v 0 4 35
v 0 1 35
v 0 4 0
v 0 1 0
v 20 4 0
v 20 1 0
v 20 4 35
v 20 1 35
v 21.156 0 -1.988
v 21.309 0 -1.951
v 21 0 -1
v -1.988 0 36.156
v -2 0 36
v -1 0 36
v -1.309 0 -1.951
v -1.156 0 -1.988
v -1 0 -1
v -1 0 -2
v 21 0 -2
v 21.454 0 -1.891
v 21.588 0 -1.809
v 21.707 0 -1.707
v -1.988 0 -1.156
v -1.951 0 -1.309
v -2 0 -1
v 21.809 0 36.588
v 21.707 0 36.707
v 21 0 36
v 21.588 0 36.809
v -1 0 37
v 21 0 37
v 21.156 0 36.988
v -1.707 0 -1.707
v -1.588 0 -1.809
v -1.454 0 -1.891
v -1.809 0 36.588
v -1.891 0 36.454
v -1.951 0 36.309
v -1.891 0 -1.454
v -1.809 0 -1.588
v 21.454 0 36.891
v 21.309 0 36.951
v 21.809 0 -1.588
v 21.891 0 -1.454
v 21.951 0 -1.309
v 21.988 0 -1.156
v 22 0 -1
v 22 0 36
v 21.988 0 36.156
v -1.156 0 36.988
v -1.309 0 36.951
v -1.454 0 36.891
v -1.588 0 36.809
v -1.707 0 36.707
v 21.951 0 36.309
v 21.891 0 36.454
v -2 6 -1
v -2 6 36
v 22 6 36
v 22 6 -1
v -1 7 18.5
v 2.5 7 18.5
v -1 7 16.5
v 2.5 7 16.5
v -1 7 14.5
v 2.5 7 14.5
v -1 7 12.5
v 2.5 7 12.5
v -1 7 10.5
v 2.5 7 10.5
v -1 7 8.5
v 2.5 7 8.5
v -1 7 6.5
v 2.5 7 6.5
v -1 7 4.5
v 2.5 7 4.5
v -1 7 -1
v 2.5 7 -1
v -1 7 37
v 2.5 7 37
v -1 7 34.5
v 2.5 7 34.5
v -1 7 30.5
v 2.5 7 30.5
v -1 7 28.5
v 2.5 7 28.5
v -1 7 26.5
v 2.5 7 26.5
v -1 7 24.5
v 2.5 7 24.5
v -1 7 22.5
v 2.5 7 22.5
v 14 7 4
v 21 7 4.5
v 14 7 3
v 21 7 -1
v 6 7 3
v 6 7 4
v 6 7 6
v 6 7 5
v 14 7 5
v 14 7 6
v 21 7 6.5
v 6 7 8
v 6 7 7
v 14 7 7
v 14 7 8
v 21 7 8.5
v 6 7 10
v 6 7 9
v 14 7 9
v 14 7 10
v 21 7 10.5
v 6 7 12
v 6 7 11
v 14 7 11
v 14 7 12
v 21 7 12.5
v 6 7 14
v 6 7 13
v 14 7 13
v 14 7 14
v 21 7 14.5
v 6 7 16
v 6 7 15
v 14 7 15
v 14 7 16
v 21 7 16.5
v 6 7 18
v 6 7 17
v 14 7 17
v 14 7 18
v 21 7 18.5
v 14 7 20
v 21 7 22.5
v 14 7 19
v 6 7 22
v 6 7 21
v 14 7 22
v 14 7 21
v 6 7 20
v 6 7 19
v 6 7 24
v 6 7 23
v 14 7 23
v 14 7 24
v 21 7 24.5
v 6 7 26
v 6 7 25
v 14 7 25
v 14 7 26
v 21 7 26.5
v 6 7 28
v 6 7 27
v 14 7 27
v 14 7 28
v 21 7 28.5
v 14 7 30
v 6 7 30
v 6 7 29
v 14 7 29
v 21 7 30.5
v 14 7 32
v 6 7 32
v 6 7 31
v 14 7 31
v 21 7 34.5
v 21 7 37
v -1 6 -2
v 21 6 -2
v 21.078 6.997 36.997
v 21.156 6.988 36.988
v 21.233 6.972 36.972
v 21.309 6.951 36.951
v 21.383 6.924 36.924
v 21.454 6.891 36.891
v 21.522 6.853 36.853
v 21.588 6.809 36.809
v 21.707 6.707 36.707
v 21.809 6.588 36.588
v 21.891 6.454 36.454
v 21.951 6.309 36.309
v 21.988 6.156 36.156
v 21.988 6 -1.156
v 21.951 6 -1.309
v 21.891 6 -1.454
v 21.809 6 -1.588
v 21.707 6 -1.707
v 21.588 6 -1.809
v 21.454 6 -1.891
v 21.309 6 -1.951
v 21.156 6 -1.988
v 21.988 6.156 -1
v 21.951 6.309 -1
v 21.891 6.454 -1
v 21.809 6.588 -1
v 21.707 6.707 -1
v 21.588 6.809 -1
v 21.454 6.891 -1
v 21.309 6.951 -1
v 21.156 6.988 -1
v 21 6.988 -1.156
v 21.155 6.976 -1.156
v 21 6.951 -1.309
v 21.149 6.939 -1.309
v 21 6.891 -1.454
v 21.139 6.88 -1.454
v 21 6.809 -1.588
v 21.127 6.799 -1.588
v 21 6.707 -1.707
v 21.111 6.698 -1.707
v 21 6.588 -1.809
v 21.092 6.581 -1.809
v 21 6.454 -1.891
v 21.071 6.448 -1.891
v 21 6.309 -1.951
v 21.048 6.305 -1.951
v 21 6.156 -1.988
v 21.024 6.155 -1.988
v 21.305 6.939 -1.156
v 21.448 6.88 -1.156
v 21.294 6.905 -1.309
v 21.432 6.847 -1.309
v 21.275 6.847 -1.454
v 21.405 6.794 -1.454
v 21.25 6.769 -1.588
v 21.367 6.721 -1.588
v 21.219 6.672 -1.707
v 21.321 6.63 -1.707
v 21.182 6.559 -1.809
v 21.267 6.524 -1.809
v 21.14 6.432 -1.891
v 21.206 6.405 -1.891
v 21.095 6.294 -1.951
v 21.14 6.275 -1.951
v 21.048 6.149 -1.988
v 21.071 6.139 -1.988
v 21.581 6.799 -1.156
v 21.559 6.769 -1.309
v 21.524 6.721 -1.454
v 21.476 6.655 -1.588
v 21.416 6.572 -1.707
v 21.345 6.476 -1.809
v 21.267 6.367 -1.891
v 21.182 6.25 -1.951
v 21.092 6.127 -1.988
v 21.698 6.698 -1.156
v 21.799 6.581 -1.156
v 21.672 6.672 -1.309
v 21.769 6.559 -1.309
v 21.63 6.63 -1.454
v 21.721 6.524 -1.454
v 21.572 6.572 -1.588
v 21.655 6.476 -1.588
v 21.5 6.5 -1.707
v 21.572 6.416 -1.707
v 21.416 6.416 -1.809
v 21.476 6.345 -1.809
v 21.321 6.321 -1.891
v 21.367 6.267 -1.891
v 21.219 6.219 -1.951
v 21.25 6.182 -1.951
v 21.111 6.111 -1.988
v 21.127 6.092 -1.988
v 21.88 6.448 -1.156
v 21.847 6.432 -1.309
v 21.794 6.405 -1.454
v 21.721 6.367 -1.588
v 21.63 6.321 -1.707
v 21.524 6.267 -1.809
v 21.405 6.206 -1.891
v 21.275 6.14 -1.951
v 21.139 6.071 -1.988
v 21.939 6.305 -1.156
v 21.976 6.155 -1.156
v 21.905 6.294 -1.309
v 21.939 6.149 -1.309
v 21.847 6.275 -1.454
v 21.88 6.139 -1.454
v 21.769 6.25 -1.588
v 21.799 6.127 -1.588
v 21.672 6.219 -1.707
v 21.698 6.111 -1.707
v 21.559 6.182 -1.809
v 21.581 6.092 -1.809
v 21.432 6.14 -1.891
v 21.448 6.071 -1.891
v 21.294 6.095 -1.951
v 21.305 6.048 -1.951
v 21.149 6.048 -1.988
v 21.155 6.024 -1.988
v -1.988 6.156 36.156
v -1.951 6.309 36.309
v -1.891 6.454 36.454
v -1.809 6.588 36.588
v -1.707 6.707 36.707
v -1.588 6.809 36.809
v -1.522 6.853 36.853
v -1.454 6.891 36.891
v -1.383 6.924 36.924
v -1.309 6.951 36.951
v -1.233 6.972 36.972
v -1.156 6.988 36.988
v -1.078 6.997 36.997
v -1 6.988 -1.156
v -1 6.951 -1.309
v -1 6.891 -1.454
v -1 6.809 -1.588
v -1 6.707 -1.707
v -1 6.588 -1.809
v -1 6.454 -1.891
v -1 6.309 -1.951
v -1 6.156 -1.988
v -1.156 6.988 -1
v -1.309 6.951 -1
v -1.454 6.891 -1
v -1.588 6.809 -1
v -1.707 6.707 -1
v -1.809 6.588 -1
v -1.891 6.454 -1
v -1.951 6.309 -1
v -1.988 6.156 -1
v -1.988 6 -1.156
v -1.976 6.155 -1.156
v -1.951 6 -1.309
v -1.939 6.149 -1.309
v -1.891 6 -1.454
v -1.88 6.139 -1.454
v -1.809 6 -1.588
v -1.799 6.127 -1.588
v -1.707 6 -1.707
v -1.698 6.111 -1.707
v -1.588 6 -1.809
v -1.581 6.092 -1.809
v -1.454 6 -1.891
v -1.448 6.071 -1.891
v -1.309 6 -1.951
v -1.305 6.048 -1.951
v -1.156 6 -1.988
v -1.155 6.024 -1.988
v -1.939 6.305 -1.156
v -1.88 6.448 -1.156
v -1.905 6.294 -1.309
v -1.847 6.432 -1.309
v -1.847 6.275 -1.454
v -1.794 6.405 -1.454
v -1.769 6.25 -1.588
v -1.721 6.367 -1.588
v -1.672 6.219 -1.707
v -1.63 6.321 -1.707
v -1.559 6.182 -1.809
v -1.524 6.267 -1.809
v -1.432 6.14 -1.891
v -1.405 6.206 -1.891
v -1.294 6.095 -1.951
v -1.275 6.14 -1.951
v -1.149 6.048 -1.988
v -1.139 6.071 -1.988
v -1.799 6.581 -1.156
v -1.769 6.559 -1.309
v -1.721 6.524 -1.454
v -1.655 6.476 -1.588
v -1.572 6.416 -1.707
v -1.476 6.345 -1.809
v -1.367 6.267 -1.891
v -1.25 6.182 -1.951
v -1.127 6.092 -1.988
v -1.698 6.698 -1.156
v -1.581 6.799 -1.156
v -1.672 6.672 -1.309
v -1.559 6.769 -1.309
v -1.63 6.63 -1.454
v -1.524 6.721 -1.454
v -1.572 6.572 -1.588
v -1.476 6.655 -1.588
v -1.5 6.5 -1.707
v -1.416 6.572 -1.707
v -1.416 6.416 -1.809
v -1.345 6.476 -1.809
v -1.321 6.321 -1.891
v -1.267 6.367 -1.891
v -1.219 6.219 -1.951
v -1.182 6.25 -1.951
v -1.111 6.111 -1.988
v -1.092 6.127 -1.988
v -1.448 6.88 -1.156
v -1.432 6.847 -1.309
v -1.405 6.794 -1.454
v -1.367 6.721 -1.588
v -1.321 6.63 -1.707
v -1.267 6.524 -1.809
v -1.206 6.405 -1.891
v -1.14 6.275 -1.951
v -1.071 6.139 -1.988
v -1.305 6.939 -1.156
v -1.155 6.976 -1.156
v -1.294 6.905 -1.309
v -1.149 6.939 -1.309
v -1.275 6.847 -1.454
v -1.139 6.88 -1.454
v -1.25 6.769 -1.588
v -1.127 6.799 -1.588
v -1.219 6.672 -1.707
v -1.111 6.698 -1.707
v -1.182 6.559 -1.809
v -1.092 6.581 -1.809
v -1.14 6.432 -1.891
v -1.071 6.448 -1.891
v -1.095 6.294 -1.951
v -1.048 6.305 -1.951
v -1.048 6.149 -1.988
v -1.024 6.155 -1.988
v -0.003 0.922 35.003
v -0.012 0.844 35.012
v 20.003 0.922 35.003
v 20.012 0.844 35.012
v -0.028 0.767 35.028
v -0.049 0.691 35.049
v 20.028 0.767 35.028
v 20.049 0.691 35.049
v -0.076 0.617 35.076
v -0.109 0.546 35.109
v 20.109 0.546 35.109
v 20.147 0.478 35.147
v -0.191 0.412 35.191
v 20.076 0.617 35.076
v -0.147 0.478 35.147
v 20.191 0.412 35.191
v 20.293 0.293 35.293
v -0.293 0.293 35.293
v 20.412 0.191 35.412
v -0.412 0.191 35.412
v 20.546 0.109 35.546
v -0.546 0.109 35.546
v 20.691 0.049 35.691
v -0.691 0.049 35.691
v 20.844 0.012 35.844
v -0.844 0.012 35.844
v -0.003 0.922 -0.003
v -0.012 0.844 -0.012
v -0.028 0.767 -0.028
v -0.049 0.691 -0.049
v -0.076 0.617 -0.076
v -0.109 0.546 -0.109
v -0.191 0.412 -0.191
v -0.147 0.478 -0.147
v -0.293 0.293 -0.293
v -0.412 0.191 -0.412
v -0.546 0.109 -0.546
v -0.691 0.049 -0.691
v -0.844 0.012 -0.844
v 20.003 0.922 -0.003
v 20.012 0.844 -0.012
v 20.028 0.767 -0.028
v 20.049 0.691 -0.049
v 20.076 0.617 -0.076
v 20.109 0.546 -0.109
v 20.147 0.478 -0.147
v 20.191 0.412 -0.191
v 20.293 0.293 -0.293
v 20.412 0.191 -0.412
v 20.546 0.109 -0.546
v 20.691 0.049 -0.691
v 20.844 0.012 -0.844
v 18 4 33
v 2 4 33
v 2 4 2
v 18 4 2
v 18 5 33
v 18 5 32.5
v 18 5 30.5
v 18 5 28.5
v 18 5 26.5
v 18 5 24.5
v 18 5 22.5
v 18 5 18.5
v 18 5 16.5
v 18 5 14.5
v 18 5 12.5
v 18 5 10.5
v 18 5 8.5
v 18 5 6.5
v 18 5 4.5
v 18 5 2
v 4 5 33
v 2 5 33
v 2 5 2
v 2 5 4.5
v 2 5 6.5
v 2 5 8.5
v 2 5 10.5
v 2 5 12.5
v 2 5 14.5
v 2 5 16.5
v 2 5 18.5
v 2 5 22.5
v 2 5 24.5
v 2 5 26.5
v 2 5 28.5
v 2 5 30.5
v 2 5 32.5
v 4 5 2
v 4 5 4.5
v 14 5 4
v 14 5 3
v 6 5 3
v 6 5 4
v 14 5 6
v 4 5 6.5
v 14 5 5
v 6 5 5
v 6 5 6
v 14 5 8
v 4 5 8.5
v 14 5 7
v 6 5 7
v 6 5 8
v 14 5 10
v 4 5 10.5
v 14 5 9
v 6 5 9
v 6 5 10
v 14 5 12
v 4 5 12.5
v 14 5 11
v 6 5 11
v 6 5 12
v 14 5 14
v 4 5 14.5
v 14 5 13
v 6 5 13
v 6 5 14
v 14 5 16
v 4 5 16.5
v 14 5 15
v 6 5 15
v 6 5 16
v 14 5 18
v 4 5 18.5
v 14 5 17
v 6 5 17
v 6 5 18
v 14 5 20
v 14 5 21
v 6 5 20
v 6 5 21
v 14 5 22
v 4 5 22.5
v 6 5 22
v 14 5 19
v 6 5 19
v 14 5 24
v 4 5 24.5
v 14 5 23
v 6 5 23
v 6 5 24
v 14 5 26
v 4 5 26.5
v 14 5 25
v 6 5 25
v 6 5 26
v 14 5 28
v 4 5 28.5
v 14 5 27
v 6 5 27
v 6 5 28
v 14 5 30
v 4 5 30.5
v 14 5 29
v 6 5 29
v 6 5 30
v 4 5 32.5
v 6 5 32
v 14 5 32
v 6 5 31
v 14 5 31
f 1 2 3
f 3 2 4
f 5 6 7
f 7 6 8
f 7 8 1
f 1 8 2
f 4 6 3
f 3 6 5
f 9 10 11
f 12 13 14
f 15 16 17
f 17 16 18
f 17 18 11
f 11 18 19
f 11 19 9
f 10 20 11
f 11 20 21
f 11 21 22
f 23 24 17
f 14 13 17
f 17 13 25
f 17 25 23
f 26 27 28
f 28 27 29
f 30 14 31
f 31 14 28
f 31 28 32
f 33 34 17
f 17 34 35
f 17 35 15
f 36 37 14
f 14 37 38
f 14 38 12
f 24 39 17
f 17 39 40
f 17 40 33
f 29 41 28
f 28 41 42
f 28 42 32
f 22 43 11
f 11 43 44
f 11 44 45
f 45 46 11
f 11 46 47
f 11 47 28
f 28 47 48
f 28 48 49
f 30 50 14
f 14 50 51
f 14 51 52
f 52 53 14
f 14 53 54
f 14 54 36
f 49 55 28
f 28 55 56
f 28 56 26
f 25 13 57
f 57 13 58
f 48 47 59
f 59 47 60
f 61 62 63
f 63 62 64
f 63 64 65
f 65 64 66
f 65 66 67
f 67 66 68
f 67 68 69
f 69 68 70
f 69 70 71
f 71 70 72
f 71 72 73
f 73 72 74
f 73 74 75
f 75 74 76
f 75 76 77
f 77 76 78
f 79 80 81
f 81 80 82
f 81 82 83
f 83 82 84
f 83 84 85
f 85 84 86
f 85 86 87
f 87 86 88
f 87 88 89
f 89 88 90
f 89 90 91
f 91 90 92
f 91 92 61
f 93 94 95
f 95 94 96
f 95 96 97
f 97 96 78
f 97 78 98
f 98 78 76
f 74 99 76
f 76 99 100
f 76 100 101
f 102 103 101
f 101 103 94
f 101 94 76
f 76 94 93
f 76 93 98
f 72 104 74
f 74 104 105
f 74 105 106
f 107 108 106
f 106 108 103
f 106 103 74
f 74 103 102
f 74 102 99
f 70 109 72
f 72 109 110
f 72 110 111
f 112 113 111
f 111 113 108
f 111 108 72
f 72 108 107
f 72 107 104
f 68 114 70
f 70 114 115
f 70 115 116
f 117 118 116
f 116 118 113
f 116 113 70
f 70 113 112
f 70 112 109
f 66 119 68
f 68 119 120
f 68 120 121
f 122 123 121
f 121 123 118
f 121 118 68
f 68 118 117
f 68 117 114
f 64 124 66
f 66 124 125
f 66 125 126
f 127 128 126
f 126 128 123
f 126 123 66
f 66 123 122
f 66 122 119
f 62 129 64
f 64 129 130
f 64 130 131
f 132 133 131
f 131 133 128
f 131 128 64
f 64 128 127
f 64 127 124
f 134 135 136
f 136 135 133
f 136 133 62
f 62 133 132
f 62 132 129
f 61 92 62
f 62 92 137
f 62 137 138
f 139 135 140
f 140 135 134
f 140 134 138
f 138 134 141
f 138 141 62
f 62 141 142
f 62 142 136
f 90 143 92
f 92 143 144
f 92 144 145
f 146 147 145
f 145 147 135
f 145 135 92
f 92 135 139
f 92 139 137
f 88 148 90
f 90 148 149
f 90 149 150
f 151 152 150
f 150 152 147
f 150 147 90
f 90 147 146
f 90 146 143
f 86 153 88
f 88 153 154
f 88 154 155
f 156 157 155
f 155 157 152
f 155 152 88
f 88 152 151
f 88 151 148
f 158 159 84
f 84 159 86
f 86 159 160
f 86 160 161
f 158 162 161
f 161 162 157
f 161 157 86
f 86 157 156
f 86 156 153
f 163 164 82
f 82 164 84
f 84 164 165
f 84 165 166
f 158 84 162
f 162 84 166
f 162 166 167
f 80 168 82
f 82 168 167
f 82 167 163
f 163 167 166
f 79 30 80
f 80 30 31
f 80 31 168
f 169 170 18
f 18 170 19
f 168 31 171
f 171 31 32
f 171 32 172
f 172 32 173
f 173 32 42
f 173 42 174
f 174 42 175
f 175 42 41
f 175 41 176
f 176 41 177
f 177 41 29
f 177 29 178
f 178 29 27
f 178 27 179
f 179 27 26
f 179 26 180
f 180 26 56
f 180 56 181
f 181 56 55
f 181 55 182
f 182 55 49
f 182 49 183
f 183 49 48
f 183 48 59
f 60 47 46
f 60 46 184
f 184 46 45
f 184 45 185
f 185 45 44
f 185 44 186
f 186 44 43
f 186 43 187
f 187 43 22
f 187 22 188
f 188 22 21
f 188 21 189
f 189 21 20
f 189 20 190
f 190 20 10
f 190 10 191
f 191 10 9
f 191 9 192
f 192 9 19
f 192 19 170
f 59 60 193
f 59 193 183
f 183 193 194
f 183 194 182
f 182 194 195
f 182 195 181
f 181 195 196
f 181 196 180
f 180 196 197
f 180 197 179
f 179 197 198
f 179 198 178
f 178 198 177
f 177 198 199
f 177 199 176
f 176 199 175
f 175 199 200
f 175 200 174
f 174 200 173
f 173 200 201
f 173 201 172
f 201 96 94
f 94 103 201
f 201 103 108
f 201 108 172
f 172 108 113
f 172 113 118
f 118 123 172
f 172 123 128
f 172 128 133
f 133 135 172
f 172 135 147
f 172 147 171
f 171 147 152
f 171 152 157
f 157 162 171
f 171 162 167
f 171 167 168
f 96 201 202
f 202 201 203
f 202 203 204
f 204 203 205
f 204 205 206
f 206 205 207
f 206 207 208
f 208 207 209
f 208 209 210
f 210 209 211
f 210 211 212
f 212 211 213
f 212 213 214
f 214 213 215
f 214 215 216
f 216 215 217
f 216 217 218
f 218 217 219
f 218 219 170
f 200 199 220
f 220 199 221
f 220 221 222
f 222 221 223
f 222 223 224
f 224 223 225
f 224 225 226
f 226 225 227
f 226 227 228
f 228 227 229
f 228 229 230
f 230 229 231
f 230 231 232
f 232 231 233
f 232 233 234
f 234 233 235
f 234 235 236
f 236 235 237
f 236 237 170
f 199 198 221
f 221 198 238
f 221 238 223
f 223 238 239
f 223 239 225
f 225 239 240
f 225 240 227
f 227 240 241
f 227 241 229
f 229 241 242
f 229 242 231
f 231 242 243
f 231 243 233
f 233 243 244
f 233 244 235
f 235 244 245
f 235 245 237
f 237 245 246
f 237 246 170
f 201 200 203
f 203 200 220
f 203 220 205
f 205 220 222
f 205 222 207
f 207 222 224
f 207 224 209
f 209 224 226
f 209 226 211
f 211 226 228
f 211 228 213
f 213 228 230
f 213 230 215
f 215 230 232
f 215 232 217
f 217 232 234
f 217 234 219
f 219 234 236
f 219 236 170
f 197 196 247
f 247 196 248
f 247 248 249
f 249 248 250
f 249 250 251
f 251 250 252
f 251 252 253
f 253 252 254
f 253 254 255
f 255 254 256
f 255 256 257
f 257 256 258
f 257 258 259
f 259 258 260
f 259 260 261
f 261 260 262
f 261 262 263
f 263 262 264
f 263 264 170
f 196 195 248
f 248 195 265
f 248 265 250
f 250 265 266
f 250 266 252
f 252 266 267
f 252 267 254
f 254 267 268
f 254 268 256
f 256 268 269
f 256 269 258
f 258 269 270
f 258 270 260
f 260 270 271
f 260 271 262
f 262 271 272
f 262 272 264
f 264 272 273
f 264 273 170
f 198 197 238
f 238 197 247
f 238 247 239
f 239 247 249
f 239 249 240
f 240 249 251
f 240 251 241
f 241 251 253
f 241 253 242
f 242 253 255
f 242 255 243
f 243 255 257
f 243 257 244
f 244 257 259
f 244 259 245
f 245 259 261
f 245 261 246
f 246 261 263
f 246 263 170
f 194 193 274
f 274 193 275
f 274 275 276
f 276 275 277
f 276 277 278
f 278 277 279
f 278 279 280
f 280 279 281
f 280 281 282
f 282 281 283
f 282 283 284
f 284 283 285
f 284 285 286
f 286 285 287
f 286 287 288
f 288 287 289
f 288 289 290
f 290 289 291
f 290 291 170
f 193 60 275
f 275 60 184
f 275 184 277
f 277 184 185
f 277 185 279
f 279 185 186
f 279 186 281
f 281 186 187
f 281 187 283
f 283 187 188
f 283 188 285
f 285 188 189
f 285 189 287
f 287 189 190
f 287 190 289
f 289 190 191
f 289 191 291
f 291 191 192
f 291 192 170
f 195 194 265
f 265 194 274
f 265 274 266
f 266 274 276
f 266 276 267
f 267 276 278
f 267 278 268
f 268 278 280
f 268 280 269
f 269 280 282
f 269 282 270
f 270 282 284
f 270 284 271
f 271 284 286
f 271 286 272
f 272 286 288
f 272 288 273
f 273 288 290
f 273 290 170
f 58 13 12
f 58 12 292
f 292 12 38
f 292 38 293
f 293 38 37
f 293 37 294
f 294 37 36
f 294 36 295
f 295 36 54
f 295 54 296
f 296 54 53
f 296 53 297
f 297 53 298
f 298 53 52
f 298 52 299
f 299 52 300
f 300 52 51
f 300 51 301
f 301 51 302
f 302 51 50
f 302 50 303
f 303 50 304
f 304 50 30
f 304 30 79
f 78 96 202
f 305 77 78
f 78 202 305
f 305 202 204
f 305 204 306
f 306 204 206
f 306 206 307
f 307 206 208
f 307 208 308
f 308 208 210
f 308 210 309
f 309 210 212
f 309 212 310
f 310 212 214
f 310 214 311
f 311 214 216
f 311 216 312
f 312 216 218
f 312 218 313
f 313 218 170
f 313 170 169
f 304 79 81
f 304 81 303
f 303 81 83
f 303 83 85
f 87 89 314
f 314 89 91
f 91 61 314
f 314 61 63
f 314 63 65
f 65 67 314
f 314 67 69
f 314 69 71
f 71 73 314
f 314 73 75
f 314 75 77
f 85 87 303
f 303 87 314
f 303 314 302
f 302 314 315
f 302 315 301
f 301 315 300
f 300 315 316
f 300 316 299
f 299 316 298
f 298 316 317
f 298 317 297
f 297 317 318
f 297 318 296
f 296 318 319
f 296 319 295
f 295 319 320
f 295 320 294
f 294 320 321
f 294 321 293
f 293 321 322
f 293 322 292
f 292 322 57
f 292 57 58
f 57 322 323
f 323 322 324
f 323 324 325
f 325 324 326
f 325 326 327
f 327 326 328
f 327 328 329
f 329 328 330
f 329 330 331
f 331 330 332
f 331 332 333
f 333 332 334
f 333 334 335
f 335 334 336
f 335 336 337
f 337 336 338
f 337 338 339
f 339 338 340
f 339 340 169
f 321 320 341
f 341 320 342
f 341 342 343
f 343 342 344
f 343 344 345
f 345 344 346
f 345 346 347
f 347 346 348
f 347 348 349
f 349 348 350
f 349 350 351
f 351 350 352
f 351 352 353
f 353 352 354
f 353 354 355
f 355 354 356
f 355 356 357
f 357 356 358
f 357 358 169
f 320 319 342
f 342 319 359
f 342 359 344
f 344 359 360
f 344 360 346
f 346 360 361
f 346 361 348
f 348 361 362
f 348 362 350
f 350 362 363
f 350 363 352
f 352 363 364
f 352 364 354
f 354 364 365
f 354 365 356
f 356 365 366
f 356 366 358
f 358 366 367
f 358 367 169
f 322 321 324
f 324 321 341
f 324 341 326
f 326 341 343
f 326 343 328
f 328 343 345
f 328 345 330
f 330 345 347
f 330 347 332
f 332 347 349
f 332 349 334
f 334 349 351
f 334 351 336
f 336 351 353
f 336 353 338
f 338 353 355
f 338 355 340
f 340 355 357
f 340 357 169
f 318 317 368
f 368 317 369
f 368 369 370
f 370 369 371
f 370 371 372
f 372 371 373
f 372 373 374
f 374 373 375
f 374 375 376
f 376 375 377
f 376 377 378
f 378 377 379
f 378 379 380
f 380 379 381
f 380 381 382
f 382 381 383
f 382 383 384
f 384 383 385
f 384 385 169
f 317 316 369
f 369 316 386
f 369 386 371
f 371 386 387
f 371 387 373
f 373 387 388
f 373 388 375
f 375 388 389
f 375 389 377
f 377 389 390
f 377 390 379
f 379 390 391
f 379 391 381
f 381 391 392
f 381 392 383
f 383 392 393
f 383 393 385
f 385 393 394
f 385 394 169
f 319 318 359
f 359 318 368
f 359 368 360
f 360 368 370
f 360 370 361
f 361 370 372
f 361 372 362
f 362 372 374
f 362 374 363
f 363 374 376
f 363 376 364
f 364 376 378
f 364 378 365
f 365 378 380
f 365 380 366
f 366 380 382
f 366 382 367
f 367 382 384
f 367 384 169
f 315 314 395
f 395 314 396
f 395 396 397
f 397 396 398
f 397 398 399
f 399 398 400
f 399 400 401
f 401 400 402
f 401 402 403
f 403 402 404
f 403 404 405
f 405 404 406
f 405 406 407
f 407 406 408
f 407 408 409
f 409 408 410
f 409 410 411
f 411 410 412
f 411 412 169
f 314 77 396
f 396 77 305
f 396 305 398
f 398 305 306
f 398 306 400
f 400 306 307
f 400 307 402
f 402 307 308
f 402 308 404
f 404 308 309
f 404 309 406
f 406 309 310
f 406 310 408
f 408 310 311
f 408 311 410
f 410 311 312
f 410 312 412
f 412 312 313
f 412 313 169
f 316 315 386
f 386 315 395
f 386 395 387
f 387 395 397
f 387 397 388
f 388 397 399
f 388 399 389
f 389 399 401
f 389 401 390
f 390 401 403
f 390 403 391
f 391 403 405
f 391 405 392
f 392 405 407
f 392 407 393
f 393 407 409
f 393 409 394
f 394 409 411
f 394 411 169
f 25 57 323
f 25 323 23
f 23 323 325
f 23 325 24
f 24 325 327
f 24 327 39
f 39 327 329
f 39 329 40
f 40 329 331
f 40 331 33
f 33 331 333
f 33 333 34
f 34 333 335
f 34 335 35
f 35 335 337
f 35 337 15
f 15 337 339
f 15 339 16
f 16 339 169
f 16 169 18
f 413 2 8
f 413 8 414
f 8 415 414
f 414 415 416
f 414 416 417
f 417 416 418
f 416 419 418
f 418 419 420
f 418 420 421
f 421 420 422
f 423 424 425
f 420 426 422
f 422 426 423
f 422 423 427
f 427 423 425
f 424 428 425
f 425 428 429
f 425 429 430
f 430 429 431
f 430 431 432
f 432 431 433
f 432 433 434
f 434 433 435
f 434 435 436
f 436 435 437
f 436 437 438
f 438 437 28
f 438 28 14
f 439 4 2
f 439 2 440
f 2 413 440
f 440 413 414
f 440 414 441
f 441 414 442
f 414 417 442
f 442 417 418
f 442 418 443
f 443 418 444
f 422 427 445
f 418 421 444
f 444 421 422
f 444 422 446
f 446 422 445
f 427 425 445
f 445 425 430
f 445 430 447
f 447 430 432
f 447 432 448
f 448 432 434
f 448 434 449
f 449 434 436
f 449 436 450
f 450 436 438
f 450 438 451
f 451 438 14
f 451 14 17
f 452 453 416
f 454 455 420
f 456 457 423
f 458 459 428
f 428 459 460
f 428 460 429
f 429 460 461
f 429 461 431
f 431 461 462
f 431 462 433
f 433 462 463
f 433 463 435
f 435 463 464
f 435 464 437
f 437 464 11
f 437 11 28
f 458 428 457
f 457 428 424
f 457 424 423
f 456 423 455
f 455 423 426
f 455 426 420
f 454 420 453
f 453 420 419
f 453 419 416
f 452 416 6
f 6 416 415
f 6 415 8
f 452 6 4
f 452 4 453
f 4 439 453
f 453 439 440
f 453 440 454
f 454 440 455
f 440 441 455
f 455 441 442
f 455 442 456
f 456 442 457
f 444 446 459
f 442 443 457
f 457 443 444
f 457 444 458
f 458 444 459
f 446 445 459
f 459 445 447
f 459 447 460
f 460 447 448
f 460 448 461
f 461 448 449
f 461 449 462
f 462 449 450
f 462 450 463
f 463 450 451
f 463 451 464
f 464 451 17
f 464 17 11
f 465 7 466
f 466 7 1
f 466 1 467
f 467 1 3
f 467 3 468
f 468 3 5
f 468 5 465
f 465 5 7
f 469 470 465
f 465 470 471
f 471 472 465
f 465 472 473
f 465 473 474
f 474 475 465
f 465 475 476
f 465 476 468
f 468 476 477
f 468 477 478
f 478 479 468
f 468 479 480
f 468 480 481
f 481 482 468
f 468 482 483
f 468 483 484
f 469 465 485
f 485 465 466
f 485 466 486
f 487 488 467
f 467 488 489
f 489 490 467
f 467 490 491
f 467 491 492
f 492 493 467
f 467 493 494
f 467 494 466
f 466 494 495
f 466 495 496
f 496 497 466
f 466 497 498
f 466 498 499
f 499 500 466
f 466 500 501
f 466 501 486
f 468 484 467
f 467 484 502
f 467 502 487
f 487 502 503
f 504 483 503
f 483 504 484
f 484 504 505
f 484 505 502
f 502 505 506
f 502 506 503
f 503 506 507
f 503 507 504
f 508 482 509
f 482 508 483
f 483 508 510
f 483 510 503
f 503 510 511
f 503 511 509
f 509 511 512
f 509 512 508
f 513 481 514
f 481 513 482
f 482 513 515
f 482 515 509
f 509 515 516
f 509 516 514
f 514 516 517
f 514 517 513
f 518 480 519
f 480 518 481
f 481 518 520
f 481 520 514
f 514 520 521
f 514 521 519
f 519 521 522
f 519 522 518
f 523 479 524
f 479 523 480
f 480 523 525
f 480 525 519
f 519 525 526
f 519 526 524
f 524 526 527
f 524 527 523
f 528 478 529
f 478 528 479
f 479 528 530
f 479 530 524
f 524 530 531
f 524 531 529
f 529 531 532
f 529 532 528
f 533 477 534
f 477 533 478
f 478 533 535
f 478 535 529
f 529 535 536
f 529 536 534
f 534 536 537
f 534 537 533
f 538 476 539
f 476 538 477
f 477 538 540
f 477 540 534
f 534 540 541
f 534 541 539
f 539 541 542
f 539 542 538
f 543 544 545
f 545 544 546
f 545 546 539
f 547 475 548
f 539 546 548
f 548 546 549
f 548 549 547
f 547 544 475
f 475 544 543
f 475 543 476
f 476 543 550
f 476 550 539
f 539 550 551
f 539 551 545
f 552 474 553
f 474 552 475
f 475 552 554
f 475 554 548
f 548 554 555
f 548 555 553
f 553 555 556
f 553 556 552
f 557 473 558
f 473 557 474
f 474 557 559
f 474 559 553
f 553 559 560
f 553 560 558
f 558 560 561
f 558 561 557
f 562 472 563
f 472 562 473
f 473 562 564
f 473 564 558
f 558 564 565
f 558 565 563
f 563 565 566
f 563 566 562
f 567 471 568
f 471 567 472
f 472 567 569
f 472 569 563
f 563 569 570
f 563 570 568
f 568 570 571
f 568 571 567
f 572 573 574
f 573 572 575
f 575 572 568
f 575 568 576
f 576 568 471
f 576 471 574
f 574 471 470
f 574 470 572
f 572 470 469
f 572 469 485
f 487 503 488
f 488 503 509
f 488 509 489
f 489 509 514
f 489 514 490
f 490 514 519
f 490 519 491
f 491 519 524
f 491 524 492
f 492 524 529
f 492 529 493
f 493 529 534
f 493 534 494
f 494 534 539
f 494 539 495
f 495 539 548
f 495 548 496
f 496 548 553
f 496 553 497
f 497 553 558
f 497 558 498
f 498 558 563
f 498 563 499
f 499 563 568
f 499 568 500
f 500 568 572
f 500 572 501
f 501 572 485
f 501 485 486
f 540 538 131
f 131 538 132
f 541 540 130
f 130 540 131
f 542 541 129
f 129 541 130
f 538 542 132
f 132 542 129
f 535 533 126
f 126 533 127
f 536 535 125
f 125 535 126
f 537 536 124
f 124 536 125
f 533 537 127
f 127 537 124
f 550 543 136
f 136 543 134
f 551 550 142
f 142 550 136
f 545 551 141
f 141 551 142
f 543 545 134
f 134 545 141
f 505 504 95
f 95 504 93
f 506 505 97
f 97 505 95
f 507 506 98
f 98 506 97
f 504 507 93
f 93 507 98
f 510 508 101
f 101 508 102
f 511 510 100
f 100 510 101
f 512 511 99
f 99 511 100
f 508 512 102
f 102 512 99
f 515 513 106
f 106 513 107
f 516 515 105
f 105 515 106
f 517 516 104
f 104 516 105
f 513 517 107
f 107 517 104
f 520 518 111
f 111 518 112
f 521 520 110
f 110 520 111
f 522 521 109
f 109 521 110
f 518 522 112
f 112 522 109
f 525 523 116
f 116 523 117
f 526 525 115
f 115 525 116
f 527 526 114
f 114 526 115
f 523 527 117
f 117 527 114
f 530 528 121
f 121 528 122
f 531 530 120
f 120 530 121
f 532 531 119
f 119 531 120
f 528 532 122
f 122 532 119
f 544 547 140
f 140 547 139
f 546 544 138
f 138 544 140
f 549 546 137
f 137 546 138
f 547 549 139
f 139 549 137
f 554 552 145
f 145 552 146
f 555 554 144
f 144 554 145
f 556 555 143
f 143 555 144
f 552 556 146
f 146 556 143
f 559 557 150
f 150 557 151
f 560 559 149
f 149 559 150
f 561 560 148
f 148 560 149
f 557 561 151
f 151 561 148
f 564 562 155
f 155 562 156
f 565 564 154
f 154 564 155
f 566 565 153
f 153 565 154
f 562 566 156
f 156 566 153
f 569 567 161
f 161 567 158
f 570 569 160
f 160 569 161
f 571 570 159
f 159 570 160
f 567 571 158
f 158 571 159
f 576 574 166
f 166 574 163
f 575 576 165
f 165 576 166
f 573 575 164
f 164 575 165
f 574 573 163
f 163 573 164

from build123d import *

# Parameters (mm, degrees)
SKIZZE1_W                       = 20
SKIZZE1_H                       = 5
AUFSATZ_LINEAR_AUSTRAGEN1_DEPTH = 35
WANDUNG1_T                      = 2
VERRUNDUNG1_R                   = 1
VERRUNDUNG3_R                   = 1
SKIZZE6_W                       = 20
SKIZZE6_H                       = 35
SKIZZE6_W_2                     = 16
SKIZZE6_H_2                     = 31
AUFSATZ_LINEAR_AUSTRAGEN2_DEPTH = 1
SKIZZE7_W                       = 8
SKIZZE7_H                       = 1
SCHNITT_LINEAR_AUSTRAGEN1_DEPTH = 2
LINEARES_MUSTER1_COUNT          = 8
LINEARES_MUSTER1_PITCH          = 2
LINEARES_MUSTER1_COL_COUNT      = 8
LINEARES_MUSTER1_COL_PITCH      = 2


with BuildPart() as part:
    # Skizze1 → Aufsatz-Linear austragen1 (new body)
    with BuildSketch(Plane.XY):
        with Locations((10, 2.5)):
            Rectangle(SKIZZE1_W, SKIZZE1_H)
    extrude(amount=AUFSATZ_LINEAR_AUSTRAGEN1_DEPTH)

    # Wandung1
    wandung1_openings = [part.faces().sort_by_distance(p)[0] for p in [
        (10, 0, 17.5),
    ]]
    offset(amount=WANDUNG1_T, openings=wandung1_openings, kind=Kind.INTERSECTION)

    # Verrundung1
    # the kernel refuses this fillet: 1 mm, written as the material it takes off along each edge
    with BuildSketch(Plane(origin=(21, 6, -1), x_dir=(1, 0, 0), z_dir=(0, 0, -1))) as verrundung1_piece_1_section:
        Polygon((0, 0), (VERRUNDUNG1_R, 0), (VERRUNDUNG1_R, -VERRUNDUNG1_R), (0, -VERRUNDUNG1_R), align=None)
    verrundung1_piece_1 = extrude(amount=VERRUNDUNG1_R, mode=Mode.PRIVATE)
    verrundung1_piece_1 = verrundung1_piece_1 - Plane(origin=(21, 6, -1), x_dir=(-0.7071067811865475, -0.7071067811865475, 0), z_dir=(0, 0, -1)) * Sphere(VERRUNDUNG1_R, mode=Mode.PRIVATE)
    add(verrundung1_piece_1, mode=Mode.SUBTRACT)
    with BuildSketch(Plane(origin=(-1, 6, -1), x_dir=(0, 0, -1), z_dir=(-1, 0, 0))) as verrundung1_piece_2_section:
        Polygon((0, 0), (VERRUNDUNG1_R, 0), (VERRUNDUNG1_R, -VERRUNDUNG1_R), (0, -VERRUNDUNG1_R), align=None)
    verrundung1_piece_2 = extrude(amount=VERRUNDUNG1_R, mode=Mode.PRIVATE)
    verrundung1_piece_2 = verrundung1_piece_2 - Plane(origin=(-1, 6, -1), x_dir=(0, -0.7071067811865475, 0.7071067811865475), z_dir=(-1, 0, 0)) * Sphere(VERRUNDUNG1_R, mode=Mode.PRIVATE)
    add(verrundung1_piece_2, mode=Mode.SUBTRACT)
    with BuildSketch(Plane(origin=(22, -2.5, 37), x_dir=(0, 0, -1), z_dir=(0, 1, 0)), Plane(origin=(-2, 9.5, 37), x_dir=(0, 0, -1), z_dir=(0, -1, 0))) as verrundung1_piece_3:
        with BuildLine():
            CenterArc((VERRUNDUNG1_R, VERRUNDUNG1_R), VERRUNDUNG1_R, 180, 90)
            Line((0, VERRUNDUNG1_R), (0, 0))
            Line((0, 0), (VERRUNDUNG1_R, 0))
        make_face()
    extrude(amount=12, mode=Mode.SUBTRACT)
    with BuildSketch(Plane(origin=(21, 7, -2), x_dir=(0, 0, 1), z_dir=(-1, 0, 0))) as verrundung1_piece_4:
        with BuildLine():
            CenterArc((VERRUNDUNG1_R, -VERRUNDUNG1_R), VERRUNDUNG1_R, 90, 90)
            Line((0, -VERRUNDUNG1_R), (0, 0))
            Line((0, 0), (VERRUNDUNG1_R, 0))
        make_face()
    extrude(amount=22, mode=Mode.SUBTRACT)
    with BuildSketch(Plane(origin=(22, -2.5, -2), x_dir=(0, 0, 1), z_dir=(0, 1, 0)), Plane(origin=(-2, 6, -2), x_dir=(0, 0, 1), z_dir=(0, -1, 0))) as verrundung1_piece_5:
        with BuildLine():
            CenterArc((VERRUNDUNG1_R, -VERRUNDUNG1_R), VERRUNDUNG1_R, 90, 90)
            Line((0, -VERRUNDUNG1_R), (0, 0))
            Line((0, 0), (VERRUNDUNG1_R, 0))
        make_face()
    extrude(amount=8.5, mode=Mode.SUBTRACT)
    with BuildSketch(Plane(origin=(-2, 7, -1), x_dir=(1, 0, 0), z_dir=(0, 0, 1)), Plane(origin=(22, 7, -1), x_dir=(0, -1, 0), z_dir=(0, 0, 1))) as verrundung1_piece_6:
        with BuildLine():
            CenterArc((VERRUNDUNG1_R, -VERRUNDUNG1_R), VERRUNDUNG1_R, 90, 90)
            Line((0, -VERRUNDUNG1_R), (0, 0))
            Line((0, 0), (VERRUNDUNG1_R, 0))
        make_face()
    extrude(amount=40.5, mode=Mode.SUBTRACT)

    # Verrundung3
    verrundung3_edges = [part.edges().sort_by_distance(p)[0] for p in [
        (10, 0, 0),
        (0, 0, 17.5),
        (20, 0, 17.5),
        (10, 0, 35),
    ]]
    fillet(verrundung3_edges, radius=VERRUNDUNG3_R)

    # Skizze6 → Aufsatz-Linear austragen2 (add)
    with BuildSketch(Plane.XZ.offset(-5)):
        with Locations((10, 17.5)):
            Rectangle(SKIZZE6_W, SKIZZE6_H)
        with Locations((10, 17.5)):
            Rectangle(SKIZZE6_W_2, SKIZZE6_H_2, mode=Mode.SUBTRACT)
    extrude(amount=AUFSATZ_LINEAR_AUSTRAGEN2_DEPTH)

    # Skizze7 → Schnitt-Linear austragen1 (cut)
    with BuildSketch(Plane.XZ.offset(-5)):
        with Locations((10, 17.5)):
            Rectangle(SKIZZE7_W, SKIZZE7_H)
    schnitt_linear_austragen1 = extrude(amount=-SCHNITT_LINEAR_AUSTRAGEN1_DEPTH, mode=Mode.SUBTRACT)

    # Lineares Muster1: Schnitt-Linear austragen1 ×8
    with Locations(*[(0, 0, -i * LINEARES_MUSTER1_PITCH) for i in range(1, LINEARES_MUSTER1_COUNT)]):
        add(schnitt_linear_austragen1, mode=Mode.SUBTRACT)

    # Lineares Muster1 col: Schnitt-Linear austragen1 ×8
    with Locations(*[(0, 0, i * LINEARES_MUSTER1_COL_PITCH) for i in range(1, LINEARES_MUSTER1_COL_COUNT)]):
        add(schnitt_linear_austragen1, mode=Mode.SUBTRACT)


solid = part.part
